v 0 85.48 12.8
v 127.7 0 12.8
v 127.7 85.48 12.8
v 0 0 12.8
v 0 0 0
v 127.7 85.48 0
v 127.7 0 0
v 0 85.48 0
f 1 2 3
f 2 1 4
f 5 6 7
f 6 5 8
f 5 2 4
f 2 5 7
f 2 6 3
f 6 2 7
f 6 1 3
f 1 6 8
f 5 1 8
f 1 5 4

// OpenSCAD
// Opentrons Tough PCR Auto-Sealing Lid
// loadName: opentrons_tough_pcr_auto_sealing_lid
// Auto-generated by labware_to_stl.py from Opentrons V2 labware definition

$fn = 64;

difference() {
    // ── Labware body ──────────────────────────────────────────────
    cube([127.7000, 85.4800, 12.8000]);

    // ── Well cutouts ──────────────────────────────────────────────
}
